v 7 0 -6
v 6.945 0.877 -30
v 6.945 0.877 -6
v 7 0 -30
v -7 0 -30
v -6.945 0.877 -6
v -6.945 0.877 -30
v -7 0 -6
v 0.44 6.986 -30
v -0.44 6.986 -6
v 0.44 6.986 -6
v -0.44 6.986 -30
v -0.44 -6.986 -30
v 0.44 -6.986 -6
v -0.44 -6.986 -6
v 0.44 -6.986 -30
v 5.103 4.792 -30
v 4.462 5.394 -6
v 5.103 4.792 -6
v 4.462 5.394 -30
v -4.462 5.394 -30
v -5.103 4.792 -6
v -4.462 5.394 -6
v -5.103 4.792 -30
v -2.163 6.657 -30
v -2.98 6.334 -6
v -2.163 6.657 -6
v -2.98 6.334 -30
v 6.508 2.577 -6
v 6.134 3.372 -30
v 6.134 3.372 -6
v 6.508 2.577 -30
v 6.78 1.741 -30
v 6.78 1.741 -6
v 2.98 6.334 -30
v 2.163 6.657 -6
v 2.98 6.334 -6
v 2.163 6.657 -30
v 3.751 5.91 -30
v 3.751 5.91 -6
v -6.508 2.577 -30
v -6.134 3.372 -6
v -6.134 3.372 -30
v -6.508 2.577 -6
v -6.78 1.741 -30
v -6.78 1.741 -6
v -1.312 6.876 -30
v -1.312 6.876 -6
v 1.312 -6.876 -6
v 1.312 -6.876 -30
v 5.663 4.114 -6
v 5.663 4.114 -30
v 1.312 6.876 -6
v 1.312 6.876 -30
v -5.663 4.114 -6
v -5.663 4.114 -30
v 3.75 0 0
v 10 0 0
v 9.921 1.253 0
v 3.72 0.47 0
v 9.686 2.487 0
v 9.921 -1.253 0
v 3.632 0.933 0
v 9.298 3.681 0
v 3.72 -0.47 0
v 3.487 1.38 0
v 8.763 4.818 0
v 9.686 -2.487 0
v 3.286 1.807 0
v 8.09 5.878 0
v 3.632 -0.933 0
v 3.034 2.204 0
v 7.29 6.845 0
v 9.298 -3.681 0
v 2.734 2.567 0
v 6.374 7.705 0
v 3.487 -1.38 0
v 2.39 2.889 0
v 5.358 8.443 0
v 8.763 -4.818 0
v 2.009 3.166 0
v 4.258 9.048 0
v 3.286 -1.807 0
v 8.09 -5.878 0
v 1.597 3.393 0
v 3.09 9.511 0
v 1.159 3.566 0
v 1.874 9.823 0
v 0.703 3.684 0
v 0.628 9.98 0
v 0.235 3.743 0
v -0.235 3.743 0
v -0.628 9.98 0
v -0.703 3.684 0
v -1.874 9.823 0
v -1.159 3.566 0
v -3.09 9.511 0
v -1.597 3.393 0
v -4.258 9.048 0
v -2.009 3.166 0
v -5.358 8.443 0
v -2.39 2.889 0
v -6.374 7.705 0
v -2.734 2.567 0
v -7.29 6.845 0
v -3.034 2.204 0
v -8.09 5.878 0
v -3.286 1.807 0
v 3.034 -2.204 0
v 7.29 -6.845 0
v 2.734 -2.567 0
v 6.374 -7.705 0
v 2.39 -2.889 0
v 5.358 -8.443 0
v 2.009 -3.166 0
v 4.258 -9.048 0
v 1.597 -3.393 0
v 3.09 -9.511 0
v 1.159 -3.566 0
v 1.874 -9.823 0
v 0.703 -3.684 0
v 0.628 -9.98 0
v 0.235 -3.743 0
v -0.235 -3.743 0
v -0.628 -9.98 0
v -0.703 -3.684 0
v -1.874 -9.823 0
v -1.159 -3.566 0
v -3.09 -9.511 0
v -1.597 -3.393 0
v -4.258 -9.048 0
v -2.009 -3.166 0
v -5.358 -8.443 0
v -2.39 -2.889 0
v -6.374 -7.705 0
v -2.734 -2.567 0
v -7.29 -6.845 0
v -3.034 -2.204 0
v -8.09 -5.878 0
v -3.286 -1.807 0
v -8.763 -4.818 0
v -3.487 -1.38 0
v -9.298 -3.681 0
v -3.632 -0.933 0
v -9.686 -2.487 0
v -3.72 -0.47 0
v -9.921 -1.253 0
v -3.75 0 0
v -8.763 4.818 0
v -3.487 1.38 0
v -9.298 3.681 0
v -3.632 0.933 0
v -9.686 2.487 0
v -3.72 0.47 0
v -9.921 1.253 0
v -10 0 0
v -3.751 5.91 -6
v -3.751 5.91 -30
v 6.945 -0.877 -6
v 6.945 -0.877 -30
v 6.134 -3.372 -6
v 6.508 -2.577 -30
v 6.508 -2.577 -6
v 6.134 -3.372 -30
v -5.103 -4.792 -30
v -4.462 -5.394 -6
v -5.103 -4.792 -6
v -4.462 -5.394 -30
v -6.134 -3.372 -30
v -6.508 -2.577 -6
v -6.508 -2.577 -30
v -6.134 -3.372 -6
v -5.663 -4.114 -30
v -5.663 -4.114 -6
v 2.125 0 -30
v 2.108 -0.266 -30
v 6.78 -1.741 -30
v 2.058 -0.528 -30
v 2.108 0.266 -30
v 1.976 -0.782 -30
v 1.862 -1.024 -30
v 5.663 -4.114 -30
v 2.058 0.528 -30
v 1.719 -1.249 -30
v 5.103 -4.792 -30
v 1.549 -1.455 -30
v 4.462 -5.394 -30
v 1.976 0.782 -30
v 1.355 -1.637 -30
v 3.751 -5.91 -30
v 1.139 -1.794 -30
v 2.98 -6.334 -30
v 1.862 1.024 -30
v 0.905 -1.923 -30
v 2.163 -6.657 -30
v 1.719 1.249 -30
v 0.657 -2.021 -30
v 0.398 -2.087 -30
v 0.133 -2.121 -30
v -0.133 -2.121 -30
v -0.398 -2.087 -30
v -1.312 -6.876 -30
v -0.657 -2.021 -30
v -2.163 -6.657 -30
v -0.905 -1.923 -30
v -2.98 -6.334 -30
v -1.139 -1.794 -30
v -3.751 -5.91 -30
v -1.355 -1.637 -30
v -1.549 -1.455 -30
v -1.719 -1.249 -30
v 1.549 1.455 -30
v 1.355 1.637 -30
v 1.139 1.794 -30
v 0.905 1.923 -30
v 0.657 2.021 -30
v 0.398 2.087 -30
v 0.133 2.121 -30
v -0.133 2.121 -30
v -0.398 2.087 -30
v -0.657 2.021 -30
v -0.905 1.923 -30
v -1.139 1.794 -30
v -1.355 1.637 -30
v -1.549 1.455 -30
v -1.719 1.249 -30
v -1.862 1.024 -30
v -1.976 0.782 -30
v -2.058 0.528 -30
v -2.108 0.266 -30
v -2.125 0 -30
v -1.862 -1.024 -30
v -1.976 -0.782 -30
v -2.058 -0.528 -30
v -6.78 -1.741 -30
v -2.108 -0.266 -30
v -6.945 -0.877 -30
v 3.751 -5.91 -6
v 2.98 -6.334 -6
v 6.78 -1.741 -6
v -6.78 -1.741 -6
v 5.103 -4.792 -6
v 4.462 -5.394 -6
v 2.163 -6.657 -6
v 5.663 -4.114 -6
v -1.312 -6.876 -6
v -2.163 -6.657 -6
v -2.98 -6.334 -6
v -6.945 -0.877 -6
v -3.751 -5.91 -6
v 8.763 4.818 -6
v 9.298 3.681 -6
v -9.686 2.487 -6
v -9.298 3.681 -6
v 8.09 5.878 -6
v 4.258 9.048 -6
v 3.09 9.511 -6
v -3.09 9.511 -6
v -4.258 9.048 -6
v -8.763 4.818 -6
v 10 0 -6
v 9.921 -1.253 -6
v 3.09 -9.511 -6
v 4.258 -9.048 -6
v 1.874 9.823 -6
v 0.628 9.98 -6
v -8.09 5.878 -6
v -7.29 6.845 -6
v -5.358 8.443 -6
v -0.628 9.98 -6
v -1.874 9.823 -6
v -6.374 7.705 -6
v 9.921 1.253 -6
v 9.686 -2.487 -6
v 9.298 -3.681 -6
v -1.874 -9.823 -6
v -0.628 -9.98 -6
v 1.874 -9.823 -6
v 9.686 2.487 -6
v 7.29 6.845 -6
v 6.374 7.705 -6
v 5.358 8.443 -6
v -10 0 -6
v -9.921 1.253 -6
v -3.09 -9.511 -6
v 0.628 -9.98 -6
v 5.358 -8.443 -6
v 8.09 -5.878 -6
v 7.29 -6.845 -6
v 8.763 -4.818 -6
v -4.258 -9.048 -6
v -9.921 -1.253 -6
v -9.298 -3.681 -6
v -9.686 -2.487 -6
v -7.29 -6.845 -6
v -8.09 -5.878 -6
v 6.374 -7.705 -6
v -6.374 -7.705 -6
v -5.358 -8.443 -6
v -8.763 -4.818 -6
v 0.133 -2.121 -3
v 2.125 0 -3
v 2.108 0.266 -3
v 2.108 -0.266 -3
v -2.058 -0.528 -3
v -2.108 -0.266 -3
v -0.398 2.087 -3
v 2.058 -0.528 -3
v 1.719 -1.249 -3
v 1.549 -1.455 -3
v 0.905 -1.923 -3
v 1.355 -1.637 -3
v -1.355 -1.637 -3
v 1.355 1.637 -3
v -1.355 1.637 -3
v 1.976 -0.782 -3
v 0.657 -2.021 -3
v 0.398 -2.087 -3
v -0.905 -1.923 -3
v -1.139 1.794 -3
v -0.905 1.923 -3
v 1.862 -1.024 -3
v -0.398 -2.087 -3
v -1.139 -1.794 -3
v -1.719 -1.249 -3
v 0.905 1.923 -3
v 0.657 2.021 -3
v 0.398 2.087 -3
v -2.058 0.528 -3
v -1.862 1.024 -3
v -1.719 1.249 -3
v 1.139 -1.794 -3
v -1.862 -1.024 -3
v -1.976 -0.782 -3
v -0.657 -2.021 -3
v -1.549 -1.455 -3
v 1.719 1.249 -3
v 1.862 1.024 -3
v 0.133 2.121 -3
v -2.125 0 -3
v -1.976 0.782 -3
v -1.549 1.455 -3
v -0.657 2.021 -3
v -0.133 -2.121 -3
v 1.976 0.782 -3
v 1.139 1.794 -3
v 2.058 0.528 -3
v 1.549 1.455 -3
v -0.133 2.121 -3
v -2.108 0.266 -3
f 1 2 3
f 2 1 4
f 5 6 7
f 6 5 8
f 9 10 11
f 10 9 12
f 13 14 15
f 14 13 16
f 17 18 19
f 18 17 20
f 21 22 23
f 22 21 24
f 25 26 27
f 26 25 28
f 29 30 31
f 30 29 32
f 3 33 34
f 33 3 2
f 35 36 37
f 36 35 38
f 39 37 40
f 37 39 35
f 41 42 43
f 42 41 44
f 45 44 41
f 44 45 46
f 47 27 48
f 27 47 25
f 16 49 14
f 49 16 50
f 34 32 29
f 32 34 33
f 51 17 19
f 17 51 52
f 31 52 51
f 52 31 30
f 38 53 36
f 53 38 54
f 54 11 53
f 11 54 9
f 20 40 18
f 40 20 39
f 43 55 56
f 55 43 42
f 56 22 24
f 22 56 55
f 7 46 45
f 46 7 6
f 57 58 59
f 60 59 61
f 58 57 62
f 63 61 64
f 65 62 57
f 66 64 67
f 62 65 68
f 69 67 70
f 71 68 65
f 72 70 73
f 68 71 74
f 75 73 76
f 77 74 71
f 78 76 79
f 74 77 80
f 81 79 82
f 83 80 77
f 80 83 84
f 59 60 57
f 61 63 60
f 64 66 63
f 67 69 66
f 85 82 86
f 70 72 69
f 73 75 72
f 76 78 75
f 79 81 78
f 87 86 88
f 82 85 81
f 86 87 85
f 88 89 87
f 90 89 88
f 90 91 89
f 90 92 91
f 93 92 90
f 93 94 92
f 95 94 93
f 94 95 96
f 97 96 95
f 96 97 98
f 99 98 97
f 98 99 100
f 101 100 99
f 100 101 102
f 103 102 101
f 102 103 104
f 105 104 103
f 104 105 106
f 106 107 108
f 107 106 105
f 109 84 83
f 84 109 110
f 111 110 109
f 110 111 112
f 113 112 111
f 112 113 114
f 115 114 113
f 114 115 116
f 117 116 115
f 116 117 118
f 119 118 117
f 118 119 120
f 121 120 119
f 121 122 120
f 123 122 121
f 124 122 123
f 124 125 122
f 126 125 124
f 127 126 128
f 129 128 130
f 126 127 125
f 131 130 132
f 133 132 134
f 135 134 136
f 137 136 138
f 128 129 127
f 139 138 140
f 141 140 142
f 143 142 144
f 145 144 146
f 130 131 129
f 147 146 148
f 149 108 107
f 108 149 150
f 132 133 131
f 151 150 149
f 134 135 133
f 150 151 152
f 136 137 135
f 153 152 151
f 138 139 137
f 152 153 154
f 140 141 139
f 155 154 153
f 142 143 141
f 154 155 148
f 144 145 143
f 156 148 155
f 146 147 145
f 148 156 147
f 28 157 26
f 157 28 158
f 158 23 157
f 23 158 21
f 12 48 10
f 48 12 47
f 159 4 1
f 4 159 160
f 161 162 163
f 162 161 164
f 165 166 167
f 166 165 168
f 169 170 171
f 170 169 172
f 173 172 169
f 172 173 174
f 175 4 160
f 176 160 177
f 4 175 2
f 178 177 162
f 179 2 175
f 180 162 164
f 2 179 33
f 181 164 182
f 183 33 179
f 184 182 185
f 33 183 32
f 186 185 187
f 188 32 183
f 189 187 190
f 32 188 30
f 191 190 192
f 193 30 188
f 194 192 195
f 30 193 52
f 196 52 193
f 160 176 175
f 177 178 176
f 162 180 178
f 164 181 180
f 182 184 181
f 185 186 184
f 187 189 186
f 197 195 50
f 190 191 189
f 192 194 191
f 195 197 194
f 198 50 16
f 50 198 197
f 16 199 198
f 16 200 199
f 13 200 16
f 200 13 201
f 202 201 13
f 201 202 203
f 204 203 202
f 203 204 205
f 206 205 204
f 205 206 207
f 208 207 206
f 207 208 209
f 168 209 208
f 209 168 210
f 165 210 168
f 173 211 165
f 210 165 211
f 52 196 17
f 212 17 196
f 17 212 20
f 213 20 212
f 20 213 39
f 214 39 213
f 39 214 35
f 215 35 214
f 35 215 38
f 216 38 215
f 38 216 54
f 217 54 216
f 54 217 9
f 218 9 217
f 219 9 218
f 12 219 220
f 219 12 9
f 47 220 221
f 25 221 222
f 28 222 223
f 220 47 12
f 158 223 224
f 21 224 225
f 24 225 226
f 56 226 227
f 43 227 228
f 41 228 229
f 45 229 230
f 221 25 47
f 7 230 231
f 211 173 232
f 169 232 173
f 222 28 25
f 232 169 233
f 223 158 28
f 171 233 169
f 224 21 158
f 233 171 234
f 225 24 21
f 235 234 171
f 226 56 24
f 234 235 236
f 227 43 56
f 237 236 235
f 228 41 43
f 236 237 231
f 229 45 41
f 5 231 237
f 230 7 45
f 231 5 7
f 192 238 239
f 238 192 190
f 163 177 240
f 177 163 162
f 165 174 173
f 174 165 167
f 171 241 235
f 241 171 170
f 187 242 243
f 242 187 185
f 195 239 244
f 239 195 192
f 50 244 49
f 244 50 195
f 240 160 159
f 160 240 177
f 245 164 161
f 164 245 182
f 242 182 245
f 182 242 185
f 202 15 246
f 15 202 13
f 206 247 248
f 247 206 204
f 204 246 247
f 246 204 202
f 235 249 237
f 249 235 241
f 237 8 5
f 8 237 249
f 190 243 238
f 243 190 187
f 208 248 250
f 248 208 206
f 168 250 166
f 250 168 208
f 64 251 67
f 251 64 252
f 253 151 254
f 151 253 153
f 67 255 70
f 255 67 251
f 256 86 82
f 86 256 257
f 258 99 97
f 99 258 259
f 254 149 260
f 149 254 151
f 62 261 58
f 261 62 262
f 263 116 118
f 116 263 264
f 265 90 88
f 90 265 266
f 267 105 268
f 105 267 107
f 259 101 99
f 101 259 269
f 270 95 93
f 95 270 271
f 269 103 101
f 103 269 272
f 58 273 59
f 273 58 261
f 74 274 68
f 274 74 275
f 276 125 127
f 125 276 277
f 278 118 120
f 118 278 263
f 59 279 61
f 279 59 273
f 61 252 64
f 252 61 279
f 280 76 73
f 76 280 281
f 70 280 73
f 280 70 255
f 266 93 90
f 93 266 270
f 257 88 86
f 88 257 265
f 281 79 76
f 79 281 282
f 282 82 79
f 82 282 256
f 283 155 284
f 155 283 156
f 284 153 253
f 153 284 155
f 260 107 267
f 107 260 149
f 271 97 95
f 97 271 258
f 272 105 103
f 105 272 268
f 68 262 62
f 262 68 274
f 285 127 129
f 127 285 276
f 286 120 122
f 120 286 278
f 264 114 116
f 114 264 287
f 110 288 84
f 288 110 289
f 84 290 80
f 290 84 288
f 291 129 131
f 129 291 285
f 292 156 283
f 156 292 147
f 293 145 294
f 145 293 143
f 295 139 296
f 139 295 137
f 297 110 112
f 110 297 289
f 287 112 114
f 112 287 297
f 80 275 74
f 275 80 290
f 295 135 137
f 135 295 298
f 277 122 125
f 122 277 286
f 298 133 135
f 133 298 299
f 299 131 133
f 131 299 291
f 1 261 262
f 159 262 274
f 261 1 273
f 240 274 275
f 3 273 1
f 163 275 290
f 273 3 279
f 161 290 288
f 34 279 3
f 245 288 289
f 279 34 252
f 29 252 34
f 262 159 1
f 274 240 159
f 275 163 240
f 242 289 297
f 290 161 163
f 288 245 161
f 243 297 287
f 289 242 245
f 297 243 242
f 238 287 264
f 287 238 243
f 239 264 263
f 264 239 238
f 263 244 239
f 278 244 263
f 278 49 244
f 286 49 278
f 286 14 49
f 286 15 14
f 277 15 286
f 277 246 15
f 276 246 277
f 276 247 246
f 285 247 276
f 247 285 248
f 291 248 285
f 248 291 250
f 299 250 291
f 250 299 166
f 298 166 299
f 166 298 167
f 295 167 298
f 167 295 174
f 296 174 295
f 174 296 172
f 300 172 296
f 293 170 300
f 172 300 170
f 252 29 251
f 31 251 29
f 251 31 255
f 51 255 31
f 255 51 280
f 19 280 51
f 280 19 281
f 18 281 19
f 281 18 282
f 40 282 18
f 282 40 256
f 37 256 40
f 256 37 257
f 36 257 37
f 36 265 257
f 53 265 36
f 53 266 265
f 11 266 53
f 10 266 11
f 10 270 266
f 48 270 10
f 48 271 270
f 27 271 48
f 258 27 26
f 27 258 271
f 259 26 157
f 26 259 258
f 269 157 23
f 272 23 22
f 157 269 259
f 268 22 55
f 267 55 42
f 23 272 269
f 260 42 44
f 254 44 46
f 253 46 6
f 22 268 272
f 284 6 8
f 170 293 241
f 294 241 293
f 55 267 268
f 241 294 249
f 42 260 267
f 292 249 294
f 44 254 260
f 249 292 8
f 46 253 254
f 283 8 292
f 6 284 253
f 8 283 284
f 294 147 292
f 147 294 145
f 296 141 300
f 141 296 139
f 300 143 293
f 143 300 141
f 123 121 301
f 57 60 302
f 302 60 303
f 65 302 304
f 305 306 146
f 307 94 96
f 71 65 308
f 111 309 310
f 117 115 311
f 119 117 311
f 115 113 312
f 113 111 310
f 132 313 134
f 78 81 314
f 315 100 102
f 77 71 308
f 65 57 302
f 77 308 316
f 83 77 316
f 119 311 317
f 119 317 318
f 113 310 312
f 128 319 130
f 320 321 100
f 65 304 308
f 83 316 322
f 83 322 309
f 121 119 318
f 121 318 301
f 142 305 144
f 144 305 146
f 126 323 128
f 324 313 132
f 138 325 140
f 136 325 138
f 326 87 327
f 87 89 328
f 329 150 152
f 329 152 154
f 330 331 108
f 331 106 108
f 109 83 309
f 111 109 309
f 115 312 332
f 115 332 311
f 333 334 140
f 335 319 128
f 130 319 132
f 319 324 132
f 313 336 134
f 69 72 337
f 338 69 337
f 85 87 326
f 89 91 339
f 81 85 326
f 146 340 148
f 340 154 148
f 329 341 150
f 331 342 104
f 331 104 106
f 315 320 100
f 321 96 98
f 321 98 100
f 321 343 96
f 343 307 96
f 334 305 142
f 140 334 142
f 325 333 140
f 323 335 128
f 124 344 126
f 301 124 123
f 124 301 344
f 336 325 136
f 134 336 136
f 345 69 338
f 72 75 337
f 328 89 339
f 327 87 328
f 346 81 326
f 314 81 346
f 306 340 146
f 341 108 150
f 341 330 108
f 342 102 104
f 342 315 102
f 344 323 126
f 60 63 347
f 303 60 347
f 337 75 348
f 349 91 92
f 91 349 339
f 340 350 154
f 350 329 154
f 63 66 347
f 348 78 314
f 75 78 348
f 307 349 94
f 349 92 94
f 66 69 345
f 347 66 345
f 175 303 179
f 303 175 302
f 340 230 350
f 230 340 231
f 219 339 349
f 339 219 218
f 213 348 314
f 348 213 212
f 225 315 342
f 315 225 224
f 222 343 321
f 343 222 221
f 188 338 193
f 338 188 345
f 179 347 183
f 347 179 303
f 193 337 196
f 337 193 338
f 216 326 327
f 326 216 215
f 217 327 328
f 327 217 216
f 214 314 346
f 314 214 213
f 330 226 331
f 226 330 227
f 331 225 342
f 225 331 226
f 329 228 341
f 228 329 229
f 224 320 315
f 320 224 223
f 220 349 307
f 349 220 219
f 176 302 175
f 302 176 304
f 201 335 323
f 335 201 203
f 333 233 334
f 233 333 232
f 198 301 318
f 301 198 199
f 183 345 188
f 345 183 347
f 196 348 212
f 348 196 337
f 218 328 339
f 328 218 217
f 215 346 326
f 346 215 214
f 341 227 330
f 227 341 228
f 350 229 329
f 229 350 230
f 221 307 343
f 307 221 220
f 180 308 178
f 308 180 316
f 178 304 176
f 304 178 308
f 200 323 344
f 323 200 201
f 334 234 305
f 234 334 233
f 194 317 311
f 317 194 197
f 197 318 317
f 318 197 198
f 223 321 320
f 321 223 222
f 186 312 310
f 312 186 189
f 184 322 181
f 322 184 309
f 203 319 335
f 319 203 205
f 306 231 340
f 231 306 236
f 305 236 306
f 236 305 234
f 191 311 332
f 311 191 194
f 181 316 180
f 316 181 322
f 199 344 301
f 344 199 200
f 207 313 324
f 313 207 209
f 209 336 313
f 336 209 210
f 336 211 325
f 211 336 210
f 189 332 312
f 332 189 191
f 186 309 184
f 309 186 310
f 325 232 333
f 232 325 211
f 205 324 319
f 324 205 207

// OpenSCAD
$fn = 50;


difference() {
	union() {
		translate(v = [0, 0, -30.0000000000]) {
			cylinder(h = 30, r = 7.0000000000);
		}
		translate(v = [0, 0, -6.0000000000]) {
			cylinder(h = 6, r = 10.0000000000);
		}
	}
	union() {
		translate(v = [0, 0, 0]) {
			rotate(a = [0, 0, 0]) {
				difference() {
					union() {
						#translate(v = [0, 0, -30.0000000000]) {
							cylinder(h = 30, r = 2.0000000000);
						}
						#translate(v = [0, 0, -3]) {
							cylinder(h = 3, r = 7.0000000000, r1 = 2.1250000000, r2 = 3.7500000000);
						}
						#translate(v = [0, 0, -30.0000000000]) {
							cylinder(h = 30, r = 2.1250000000);
						}
						#translate(v = [0, 0, -30.0000000000]) {
							cylinder(h = 30, r = 2.0000000000);
						}
					}
					union();
				}
			}
		}
	}
}
